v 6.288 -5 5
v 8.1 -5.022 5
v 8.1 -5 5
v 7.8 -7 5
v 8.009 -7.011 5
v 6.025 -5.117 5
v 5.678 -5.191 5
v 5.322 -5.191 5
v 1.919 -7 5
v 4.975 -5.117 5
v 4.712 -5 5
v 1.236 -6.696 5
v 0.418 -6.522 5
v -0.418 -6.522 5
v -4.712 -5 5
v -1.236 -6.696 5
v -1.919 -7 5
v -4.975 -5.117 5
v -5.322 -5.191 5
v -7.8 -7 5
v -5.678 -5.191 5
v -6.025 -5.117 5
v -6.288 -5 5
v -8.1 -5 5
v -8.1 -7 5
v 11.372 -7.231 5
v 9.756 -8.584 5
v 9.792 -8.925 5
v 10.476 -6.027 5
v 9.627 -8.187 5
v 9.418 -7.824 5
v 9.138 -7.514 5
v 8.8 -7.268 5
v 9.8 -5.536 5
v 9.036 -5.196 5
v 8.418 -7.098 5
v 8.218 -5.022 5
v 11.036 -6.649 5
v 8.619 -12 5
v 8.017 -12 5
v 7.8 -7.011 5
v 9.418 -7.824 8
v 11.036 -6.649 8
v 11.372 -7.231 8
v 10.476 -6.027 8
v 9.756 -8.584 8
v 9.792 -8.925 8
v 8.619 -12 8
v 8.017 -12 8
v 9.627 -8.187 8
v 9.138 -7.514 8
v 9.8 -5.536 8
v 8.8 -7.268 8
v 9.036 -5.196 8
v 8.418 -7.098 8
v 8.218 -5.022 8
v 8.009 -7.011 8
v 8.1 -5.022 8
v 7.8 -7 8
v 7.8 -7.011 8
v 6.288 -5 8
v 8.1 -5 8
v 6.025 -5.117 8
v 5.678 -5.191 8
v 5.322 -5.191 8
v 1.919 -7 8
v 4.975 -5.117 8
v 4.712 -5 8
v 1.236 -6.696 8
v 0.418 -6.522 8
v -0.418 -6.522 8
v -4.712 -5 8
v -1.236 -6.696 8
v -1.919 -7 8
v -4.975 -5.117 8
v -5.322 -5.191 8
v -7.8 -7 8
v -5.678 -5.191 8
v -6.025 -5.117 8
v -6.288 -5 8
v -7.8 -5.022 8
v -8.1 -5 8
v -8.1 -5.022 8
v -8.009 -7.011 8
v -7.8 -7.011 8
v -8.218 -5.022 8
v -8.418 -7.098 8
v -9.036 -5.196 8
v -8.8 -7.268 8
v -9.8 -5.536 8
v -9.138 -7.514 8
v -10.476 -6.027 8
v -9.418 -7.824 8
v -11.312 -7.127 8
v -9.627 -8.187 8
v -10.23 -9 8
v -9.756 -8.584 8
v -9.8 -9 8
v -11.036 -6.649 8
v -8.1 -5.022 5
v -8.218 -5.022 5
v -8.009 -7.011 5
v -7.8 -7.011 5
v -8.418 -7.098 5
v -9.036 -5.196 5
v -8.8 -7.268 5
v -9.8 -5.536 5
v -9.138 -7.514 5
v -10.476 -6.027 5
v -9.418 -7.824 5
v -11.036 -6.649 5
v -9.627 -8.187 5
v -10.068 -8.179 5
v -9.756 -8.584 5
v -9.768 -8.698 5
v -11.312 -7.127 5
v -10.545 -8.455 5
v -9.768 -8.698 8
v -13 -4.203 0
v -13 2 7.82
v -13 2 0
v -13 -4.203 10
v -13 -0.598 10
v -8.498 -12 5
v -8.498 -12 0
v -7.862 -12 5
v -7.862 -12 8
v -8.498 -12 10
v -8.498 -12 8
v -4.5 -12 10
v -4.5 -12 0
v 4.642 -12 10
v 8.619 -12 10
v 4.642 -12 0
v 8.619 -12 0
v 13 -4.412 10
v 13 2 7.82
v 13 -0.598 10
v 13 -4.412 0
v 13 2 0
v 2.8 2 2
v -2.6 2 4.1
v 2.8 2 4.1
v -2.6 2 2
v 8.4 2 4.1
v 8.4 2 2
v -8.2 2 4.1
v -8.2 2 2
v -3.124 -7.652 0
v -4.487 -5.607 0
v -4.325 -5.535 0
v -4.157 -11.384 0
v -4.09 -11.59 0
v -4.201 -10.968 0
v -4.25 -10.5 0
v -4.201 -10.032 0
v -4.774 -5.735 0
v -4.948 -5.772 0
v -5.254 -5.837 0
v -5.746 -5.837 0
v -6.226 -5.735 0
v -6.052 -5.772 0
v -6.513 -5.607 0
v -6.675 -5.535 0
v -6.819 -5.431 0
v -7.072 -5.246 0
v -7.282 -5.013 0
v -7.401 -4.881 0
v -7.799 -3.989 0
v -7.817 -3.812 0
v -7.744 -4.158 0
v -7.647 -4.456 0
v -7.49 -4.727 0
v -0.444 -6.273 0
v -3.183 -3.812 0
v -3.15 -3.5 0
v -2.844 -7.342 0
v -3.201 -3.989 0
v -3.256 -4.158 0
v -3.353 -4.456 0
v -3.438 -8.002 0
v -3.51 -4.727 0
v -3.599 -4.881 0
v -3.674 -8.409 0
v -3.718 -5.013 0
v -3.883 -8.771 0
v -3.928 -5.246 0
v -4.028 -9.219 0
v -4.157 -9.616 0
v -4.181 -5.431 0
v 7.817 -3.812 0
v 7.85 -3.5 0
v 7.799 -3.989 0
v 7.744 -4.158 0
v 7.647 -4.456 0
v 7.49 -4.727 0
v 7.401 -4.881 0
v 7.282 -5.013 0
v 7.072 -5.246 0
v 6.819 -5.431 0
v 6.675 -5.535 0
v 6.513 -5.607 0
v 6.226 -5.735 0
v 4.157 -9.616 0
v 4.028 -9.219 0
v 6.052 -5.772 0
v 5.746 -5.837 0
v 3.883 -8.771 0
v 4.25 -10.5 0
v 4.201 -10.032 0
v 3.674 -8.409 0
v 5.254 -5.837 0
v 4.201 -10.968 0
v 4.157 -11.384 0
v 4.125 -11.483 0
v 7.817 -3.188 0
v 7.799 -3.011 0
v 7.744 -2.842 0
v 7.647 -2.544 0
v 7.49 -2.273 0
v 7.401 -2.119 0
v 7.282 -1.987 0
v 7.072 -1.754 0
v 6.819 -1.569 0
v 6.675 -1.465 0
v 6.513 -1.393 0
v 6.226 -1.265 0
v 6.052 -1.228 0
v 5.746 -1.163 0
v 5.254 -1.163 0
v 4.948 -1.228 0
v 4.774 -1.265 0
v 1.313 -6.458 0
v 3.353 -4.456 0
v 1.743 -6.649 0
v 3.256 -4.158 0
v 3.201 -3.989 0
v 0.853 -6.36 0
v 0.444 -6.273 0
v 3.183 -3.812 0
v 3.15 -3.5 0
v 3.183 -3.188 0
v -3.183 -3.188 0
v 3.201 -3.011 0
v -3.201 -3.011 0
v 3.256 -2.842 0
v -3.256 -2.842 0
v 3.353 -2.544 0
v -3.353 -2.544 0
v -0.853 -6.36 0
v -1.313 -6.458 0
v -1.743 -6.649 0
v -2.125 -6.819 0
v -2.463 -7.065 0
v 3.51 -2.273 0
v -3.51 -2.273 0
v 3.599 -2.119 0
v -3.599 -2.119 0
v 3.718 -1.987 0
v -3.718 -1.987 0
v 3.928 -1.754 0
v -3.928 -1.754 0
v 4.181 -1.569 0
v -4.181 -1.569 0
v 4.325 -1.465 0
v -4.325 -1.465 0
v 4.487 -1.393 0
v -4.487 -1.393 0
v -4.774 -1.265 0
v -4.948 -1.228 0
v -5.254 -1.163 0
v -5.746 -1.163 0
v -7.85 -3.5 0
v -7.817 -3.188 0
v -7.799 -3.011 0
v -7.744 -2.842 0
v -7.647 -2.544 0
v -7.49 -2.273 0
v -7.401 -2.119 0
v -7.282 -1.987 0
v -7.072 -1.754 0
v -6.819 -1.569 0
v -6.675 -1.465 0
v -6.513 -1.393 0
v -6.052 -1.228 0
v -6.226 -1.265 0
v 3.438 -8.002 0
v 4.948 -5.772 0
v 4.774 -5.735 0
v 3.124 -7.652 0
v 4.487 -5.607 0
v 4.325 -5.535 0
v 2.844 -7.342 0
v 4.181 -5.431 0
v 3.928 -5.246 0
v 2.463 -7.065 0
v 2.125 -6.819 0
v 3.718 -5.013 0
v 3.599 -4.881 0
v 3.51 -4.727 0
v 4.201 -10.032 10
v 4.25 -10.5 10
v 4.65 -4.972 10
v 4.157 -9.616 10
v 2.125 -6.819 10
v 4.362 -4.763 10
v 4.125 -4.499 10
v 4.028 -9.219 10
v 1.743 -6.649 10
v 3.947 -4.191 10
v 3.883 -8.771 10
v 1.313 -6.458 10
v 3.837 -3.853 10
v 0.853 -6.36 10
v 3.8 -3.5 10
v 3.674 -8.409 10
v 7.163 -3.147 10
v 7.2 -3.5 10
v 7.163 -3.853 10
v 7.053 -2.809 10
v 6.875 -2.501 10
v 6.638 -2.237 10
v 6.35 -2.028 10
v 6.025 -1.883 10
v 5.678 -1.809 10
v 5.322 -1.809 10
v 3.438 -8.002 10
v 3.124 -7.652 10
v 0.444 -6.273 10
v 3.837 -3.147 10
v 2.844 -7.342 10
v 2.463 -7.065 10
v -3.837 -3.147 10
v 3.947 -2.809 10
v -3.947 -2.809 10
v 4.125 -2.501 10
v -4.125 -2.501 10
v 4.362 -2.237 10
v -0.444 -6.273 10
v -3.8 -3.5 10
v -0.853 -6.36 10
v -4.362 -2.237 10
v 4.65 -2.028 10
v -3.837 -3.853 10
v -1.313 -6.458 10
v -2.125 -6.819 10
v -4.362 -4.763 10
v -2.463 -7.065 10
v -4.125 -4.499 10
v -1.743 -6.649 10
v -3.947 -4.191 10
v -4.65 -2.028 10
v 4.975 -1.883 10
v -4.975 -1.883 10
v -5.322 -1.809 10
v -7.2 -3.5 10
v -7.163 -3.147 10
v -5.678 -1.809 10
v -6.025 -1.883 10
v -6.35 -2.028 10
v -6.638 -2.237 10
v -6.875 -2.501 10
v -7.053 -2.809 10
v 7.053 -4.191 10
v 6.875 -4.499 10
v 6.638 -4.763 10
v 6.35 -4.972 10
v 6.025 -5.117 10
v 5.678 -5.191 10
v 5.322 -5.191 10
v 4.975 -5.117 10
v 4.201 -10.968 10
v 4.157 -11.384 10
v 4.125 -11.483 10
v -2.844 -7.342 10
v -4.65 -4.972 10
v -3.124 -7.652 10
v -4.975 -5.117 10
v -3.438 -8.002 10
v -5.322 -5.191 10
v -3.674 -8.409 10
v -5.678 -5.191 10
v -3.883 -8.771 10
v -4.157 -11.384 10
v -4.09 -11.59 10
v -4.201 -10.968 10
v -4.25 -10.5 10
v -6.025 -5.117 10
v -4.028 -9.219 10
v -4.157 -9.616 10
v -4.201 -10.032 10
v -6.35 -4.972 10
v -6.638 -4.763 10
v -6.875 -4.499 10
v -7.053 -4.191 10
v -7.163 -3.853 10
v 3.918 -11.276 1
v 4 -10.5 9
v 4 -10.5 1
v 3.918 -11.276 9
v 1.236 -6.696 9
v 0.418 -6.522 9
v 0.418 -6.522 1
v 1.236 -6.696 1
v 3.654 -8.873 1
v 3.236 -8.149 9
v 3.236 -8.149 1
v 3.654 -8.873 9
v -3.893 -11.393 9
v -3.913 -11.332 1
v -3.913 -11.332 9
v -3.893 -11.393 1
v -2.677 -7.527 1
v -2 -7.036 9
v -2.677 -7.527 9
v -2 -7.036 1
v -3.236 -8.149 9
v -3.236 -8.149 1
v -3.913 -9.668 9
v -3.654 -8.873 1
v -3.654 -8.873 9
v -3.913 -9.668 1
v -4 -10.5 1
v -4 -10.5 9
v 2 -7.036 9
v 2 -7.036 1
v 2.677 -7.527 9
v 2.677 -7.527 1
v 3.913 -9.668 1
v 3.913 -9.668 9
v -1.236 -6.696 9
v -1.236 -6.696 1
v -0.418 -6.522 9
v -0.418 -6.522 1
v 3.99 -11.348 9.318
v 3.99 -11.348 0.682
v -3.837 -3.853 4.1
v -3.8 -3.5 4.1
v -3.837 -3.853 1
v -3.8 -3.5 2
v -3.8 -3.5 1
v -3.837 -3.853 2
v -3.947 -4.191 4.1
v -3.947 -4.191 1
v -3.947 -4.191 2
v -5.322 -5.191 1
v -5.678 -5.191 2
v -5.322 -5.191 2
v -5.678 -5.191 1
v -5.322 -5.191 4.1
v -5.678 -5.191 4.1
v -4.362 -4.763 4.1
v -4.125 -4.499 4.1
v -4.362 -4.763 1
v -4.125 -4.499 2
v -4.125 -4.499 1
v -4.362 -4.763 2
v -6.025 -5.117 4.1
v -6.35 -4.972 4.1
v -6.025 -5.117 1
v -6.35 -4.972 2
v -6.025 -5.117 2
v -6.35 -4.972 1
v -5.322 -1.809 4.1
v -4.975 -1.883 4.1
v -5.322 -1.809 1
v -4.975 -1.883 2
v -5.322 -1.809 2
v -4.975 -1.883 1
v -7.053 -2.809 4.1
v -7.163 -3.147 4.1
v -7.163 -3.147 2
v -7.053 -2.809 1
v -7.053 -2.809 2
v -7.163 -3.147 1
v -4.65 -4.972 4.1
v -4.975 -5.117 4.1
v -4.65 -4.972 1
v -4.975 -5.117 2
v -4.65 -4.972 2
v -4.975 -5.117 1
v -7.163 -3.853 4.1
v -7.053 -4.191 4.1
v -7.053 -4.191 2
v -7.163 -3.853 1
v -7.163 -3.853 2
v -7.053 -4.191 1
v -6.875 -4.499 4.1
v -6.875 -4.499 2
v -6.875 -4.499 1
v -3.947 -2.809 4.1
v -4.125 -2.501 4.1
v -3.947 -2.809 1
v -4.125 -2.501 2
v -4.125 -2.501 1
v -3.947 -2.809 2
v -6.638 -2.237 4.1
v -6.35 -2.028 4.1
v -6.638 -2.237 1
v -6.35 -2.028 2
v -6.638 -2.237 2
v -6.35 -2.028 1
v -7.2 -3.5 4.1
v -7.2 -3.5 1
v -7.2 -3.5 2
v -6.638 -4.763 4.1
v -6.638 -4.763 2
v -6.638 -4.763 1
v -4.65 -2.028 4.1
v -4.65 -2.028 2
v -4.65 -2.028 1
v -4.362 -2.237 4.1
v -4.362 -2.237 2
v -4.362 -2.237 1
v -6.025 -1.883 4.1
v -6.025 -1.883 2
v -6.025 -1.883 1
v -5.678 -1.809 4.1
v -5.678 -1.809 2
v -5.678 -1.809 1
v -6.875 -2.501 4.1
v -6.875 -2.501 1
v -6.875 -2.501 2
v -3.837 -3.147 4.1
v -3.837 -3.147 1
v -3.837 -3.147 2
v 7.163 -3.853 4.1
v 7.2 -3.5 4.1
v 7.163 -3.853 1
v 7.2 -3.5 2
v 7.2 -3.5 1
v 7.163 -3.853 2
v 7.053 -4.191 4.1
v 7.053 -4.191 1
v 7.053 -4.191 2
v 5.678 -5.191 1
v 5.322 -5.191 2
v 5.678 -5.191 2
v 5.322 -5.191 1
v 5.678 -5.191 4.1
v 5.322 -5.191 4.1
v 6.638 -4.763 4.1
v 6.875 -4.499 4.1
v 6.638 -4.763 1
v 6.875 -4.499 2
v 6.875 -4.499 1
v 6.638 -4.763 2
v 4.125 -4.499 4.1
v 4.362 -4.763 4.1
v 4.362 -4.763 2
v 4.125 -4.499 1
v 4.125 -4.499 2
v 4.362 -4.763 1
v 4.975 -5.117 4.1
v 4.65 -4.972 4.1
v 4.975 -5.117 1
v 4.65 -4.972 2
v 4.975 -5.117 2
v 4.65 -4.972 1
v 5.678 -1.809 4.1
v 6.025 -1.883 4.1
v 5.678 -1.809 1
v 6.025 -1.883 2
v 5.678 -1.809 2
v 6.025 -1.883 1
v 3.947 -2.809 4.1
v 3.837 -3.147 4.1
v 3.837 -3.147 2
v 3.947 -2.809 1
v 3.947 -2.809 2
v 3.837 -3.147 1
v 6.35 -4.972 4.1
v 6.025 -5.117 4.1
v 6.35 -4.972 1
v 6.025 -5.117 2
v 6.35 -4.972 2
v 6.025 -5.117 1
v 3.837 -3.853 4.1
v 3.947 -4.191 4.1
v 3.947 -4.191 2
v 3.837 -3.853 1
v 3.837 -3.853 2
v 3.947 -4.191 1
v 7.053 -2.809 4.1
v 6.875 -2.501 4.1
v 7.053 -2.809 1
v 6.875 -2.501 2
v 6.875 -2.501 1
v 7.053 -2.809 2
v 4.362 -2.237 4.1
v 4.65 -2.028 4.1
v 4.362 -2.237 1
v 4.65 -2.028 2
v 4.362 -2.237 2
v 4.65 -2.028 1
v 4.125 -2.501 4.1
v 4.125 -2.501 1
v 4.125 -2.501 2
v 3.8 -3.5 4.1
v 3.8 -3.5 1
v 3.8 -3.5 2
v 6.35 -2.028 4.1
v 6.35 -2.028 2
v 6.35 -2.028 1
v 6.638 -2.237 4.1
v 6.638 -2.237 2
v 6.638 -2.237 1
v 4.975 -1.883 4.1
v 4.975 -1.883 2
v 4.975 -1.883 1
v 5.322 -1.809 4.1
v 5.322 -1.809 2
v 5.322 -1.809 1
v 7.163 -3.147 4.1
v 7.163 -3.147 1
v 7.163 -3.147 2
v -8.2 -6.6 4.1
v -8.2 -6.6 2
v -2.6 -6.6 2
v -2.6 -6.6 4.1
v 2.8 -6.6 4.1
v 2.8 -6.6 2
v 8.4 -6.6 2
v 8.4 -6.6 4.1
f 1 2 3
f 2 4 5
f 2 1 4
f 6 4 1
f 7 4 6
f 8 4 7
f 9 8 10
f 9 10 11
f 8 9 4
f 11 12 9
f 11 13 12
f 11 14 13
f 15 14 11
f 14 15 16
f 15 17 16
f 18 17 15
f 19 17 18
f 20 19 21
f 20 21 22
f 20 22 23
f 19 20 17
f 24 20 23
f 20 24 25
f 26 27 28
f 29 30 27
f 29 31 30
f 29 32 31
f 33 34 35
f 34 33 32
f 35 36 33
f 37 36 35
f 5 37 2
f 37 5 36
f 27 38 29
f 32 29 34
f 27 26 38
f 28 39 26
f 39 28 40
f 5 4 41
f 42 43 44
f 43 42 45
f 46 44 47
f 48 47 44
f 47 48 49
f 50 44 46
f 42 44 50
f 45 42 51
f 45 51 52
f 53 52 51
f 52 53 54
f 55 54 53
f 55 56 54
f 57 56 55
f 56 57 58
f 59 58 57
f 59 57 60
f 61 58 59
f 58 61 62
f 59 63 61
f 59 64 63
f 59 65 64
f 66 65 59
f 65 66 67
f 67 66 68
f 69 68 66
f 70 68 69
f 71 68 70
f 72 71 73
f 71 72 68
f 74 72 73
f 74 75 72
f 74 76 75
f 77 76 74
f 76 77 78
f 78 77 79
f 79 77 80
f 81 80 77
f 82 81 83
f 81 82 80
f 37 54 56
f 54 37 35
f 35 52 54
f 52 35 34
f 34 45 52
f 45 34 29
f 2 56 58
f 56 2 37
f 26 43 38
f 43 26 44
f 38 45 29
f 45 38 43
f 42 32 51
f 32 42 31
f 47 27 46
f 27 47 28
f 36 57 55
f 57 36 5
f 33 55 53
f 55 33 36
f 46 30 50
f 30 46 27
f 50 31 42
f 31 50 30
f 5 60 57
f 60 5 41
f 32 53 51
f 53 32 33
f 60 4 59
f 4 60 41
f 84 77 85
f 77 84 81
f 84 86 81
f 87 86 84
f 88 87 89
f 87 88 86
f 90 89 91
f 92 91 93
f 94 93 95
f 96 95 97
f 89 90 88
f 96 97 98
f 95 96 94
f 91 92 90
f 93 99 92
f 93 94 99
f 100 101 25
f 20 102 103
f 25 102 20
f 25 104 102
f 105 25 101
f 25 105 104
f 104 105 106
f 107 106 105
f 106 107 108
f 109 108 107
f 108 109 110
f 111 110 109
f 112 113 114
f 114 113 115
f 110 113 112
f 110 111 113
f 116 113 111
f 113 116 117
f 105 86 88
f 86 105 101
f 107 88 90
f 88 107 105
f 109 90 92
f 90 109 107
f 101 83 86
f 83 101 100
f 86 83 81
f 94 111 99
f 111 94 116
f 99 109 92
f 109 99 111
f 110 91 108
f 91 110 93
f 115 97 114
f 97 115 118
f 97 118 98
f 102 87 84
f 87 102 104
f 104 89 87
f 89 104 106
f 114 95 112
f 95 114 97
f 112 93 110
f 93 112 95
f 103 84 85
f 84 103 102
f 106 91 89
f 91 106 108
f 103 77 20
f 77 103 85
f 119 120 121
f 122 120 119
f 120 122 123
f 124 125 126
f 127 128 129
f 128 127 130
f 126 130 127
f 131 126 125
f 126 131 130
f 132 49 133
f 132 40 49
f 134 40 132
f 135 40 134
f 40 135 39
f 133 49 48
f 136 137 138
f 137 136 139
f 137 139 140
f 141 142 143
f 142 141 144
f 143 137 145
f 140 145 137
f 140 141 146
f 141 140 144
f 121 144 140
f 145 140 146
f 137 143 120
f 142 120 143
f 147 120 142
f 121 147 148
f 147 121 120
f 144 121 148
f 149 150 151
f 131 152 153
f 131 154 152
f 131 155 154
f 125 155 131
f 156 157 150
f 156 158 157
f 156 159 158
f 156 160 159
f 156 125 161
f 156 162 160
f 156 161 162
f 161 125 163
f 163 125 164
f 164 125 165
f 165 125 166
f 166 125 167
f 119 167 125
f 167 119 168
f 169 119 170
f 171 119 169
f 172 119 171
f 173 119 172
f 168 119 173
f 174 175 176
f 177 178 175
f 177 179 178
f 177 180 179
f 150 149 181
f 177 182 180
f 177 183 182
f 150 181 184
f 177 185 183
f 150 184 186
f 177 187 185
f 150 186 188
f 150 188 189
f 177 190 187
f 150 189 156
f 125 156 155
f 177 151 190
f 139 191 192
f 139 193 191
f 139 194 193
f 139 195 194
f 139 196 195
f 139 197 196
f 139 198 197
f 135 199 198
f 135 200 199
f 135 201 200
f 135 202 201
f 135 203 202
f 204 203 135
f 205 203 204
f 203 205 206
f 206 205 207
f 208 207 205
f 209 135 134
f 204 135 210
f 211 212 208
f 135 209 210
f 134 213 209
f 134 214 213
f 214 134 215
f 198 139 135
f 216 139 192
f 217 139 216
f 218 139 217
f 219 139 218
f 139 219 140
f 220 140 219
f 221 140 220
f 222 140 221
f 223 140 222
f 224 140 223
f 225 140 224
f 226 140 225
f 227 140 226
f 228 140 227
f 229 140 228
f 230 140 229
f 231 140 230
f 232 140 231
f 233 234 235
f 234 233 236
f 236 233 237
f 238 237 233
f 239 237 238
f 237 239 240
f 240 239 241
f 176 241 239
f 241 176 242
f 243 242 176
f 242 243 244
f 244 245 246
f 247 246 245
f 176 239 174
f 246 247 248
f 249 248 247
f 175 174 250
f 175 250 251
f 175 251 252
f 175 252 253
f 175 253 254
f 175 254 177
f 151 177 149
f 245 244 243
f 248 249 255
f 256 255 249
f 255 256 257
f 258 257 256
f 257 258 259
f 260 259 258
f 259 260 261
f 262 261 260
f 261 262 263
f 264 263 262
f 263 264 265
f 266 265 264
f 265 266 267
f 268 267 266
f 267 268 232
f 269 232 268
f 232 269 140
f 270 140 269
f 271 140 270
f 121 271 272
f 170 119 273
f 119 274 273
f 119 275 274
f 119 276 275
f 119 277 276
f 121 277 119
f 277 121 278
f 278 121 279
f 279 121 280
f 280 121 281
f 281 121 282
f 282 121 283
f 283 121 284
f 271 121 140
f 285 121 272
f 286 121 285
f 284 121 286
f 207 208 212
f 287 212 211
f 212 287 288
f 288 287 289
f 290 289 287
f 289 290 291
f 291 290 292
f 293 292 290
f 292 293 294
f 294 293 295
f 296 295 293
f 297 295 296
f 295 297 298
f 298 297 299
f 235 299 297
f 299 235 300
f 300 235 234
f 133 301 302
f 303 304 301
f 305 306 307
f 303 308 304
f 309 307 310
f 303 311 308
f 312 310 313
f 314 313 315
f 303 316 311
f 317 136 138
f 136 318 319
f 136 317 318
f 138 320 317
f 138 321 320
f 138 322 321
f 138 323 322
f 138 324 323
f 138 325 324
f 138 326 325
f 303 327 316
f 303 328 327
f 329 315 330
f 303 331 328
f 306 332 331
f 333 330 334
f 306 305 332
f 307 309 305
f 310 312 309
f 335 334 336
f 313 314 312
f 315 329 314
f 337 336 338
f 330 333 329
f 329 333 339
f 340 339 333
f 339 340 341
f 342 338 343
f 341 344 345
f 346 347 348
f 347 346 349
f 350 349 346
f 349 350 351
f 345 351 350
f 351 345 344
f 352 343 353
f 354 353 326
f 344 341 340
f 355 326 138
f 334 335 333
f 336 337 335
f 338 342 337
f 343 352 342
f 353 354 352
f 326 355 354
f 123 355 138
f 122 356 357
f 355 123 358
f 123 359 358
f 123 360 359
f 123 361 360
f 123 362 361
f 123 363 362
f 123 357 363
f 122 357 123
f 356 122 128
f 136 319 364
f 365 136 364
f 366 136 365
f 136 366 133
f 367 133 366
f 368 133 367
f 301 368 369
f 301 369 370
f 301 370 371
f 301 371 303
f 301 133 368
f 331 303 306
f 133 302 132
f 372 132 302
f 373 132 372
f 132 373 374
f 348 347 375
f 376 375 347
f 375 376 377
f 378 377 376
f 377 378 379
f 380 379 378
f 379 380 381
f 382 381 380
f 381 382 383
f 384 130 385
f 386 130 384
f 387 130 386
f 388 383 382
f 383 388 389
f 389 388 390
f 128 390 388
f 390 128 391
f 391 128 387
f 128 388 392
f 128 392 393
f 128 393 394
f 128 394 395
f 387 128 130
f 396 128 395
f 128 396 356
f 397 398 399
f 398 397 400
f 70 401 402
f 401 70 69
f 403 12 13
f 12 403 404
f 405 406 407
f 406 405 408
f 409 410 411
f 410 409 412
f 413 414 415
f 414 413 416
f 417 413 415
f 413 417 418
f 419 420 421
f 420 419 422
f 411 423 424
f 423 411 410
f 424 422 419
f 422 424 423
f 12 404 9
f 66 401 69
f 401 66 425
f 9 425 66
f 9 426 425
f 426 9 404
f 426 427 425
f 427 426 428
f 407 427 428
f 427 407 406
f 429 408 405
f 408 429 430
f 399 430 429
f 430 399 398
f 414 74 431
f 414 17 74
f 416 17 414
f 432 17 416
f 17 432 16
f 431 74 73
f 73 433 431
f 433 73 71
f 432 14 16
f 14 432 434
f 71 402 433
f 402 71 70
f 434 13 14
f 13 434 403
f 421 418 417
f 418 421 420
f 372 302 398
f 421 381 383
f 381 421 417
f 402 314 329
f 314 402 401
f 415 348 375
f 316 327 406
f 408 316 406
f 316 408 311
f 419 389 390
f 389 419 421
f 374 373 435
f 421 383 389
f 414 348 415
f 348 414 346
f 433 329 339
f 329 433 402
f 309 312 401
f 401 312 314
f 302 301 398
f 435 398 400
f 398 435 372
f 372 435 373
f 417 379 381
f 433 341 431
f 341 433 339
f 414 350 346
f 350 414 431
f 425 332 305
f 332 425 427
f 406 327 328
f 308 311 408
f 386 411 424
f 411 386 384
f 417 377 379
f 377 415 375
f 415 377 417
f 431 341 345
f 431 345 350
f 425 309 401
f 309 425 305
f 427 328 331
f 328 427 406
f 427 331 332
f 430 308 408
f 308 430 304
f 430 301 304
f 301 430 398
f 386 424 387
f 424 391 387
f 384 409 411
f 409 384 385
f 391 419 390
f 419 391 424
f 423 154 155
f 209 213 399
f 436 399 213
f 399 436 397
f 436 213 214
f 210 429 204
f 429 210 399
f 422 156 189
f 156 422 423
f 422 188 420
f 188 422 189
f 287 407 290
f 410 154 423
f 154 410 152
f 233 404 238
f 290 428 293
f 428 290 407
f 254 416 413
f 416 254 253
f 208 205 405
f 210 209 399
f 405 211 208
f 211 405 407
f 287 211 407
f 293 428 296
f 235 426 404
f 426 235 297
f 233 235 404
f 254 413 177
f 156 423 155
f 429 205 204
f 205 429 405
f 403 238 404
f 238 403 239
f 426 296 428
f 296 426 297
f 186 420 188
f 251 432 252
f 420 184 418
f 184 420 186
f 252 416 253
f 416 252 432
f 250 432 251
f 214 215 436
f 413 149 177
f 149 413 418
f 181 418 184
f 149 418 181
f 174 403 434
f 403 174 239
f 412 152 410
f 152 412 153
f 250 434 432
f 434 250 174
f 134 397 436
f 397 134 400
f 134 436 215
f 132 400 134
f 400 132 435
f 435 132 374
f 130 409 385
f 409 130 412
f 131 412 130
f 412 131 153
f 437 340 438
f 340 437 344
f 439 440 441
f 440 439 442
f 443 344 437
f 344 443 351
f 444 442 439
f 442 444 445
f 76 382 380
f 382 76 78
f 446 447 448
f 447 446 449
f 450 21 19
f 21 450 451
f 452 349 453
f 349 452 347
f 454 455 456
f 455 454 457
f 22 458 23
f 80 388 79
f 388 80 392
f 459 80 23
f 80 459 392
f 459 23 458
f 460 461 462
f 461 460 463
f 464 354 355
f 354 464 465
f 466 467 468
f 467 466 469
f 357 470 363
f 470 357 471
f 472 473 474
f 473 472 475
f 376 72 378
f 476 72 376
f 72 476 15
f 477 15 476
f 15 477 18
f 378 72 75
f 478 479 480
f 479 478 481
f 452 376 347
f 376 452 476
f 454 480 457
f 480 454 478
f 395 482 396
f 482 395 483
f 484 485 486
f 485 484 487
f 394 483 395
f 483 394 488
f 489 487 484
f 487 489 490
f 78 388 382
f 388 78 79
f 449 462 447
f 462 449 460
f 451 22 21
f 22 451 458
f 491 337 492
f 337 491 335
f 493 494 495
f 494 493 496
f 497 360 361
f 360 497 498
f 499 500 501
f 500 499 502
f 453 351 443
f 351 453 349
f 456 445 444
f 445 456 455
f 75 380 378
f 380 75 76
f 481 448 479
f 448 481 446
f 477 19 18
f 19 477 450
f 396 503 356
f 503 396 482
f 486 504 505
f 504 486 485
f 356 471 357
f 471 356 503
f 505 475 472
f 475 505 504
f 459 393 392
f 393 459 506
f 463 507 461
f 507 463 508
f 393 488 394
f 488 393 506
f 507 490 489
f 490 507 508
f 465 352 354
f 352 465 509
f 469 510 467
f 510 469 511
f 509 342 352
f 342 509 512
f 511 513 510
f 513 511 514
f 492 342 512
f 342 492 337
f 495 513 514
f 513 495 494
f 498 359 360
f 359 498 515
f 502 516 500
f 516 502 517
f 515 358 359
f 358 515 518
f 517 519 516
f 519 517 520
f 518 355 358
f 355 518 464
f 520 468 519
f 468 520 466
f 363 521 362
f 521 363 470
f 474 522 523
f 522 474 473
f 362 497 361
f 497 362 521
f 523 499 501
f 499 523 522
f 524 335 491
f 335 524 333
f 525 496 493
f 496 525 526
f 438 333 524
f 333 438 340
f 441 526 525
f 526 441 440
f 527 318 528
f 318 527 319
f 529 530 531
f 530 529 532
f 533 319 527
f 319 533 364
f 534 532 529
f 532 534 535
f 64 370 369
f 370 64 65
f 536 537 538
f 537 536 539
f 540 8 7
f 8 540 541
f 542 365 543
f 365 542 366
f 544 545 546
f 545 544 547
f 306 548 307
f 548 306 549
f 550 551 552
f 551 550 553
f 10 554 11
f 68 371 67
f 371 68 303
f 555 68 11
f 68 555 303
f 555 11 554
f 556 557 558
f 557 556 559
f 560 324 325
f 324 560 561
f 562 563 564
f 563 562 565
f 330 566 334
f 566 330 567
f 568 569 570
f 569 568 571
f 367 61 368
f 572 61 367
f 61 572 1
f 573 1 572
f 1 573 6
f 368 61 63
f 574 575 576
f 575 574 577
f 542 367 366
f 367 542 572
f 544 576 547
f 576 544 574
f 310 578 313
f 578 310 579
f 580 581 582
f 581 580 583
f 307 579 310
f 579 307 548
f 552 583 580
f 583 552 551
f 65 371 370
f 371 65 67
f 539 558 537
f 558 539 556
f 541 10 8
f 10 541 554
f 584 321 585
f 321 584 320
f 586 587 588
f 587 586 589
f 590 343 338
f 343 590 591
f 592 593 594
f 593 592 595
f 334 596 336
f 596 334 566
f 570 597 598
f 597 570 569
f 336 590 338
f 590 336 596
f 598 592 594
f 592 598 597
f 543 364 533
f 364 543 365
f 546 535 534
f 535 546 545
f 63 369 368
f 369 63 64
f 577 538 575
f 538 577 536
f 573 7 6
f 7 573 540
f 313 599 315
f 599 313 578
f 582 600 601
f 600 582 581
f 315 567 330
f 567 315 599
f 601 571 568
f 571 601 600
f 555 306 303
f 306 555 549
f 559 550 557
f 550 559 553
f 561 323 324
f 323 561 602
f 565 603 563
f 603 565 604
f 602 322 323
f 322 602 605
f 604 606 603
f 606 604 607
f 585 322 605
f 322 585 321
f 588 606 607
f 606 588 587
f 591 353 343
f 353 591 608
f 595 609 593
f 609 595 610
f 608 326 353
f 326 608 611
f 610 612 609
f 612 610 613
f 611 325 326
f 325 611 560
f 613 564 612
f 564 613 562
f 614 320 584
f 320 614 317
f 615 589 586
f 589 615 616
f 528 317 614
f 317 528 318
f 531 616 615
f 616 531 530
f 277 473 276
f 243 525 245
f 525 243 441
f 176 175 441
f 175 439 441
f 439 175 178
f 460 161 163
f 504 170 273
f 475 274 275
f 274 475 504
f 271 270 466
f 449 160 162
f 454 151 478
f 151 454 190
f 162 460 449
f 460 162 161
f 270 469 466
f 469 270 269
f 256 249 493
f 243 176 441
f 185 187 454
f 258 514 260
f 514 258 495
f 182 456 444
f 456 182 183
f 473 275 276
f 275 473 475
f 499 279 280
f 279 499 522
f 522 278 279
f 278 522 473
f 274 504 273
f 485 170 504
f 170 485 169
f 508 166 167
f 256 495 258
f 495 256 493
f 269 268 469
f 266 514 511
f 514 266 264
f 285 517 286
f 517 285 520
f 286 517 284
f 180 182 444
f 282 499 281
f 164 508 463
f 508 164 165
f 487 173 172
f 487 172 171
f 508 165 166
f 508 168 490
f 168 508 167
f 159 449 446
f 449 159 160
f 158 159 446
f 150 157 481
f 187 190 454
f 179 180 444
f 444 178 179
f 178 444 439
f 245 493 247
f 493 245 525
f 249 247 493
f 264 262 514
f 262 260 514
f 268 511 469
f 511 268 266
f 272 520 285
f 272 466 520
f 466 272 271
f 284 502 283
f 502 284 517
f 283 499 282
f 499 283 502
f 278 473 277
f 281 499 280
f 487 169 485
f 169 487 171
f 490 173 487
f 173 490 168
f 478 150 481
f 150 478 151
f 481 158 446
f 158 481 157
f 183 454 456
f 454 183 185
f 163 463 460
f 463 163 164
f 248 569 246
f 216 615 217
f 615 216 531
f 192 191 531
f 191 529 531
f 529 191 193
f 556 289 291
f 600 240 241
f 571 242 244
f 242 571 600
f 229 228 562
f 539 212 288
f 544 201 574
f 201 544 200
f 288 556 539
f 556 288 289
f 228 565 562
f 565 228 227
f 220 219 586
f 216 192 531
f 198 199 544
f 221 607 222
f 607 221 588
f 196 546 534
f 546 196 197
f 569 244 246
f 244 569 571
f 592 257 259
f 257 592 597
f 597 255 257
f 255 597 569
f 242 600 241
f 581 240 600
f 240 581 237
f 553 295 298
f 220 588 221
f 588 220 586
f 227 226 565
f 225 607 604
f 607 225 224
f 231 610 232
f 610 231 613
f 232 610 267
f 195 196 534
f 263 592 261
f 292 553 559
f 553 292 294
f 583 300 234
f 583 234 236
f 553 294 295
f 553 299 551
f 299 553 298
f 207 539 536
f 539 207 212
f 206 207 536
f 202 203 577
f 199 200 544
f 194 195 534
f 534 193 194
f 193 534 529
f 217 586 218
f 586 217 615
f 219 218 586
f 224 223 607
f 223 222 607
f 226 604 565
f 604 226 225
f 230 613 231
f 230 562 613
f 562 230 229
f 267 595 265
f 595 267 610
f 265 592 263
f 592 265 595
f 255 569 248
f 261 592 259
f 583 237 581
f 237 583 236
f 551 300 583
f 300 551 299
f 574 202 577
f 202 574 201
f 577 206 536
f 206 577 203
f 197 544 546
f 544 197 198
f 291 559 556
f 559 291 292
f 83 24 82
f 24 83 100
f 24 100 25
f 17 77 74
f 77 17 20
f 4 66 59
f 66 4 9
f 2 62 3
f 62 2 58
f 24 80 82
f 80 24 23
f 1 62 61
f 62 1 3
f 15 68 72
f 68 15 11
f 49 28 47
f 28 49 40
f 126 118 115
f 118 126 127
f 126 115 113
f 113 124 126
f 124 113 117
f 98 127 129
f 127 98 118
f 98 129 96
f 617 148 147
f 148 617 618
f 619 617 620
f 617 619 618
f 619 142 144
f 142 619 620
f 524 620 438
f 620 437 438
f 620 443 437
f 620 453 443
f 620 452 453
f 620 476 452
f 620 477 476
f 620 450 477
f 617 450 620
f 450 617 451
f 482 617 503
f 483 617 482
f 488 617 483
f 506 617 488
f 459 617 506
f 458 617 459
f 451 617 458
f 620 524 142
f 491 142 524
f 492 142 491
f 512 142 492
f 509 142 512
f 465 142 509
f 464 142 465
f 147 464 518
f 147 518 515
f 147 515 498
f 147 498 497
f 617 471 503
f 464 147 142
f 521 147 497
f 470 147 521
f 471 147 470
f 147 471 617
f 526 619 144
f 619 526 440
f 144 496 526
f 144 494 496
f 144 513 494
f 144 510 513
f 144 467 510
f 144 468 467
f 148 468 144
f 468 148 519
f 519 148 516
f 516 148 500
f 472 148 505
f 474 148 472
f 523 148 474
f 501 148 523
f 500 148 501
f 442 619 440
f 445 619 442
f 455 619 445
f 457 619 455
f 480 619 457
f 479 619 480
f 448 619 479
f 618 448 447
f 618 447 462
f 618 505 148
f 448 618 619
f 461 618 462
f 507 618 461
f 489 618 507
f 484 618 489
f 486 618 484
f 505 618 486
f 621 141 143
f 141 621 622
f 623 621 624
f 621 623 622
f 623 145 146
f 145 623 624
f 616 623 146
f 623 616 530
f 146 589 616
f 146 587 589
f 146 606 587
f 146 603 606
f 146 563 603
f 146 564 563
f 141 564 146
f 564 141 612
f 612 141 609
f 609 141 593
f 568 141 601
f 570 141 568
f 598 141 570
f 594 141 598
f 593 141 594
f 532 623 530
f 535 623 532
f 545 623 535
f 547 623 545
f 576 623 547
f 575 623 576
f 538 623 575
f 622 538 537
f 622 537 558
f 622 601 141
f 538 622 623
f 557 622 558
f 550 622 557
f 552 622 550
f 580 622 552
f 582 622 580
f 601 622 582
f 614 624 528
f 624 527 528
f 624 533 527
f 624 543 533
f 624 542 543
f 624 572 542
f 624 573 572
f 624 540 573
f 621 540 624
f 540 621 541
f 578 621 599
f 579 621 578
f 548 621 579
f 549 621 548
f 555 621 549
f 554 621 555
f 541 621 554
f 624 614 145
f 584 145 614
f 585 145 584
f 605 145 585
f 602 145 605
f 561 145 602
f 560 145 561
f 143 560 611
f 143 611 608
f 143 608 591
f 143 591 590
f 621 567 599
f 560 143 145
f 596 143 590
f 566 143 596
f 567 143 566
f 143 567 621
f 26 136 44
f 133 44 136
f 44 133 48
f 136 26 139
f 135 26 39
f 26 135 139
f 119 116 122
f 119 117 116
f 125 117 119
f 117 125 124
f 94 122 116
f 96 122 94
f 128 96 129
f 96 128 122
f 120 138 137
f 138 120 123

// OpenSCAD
// PRUSA iteration4
// Y holder rear
// GNU GPL v3
// Josef Průša <iam@josefprusa.cz> and contributors
// http://www.reprap.org/wiki/Prusa_Mendel
// http://prusamendel.org

module ziptie_round_edge()
{
    difference()
    {
        translate([0,0,0]) rotate([90,0,0]) cylinder( h=3, r=4, $fn=30 );  
        translate([0,1,0]) rotate([90,0,0]) cylinder( h=5, r=2, $fn=30 );  
        translate([-10,-4,0]) cube([20,5,5]);
        translate([-20,-4,-13]) cube([20,5,20]);
    }
}


    
module part()
{
    difference()
    {

    // body block
    translate([-13,0,-2]) cube([26,10,14]);

    // y-axis cut
    translate([0,11,10.5]) rotate([90,0,0]) cylinder( h=14, r=4, $fn=30 );
    translate([0,11,10.5]) rotate([90,0,0]) cylinder( h=2, r1=4.5, r2=4, $fn=30 );
    translate([0,1,10.5]) rotate([90,0,0]) cylinder( h=2, r1=4, r2=4.5, $fn=30 );
    translate([-7,-1,14.5]) rotate([0,45,0]) cube([10,20,10]);

    // screw holes
    translate([-5.5,11,3.5]) rotate([90,0,0]) cylinder( h=20, r=1.7, $fn=30 );
    translate([5.5,11,3.5]) rotate([90,0,0]) cylinder( h=20, r=1.7, $fn=30 );
    translate([-5.5,1,3.5]) rotate([90,0,0]) cylinder( h=2, r=1.7, r2=3,$fn=30 );
    translate([5.5,1,3.5]) rotate([90,0,0]) cylinder( h=2, r=1.7, r2=3, $fn=30 );

    // ziptie
    translate([7.8,8,9]) ziptie_round_edge();
    translate([-7.8,5,9]) rotate([0,0,180]) ziptie_round_edge();
    translate([-8.1,5,5]) cube([16.2,3,2]);
    translate([0.8,5,24.5]) rotate([0,60,0]) cube([20,3,2]);
    translate([-1.8,5,26.5]) rotate([0,120,0]) cube([20,3,2]);

    // nuts
    translate([-8.2,2,-3.4]) cube([5.6,2.1,10]);
    translate([2.8,2,-3.4]) cube([5.6,2.1,10]);

    // upper corners
    translate([4,-1,20]) rotate([0,60,0]) cube([20,30,20]);
    translate([-21.2,-1,30]) rotate([0,120,0]) cube([20,30,20]);
    translate([-20,15,-9]) rotate([50,0,0]) cube([40,10,10]);
    
    }
}

rotate([90,0,0]) part();
